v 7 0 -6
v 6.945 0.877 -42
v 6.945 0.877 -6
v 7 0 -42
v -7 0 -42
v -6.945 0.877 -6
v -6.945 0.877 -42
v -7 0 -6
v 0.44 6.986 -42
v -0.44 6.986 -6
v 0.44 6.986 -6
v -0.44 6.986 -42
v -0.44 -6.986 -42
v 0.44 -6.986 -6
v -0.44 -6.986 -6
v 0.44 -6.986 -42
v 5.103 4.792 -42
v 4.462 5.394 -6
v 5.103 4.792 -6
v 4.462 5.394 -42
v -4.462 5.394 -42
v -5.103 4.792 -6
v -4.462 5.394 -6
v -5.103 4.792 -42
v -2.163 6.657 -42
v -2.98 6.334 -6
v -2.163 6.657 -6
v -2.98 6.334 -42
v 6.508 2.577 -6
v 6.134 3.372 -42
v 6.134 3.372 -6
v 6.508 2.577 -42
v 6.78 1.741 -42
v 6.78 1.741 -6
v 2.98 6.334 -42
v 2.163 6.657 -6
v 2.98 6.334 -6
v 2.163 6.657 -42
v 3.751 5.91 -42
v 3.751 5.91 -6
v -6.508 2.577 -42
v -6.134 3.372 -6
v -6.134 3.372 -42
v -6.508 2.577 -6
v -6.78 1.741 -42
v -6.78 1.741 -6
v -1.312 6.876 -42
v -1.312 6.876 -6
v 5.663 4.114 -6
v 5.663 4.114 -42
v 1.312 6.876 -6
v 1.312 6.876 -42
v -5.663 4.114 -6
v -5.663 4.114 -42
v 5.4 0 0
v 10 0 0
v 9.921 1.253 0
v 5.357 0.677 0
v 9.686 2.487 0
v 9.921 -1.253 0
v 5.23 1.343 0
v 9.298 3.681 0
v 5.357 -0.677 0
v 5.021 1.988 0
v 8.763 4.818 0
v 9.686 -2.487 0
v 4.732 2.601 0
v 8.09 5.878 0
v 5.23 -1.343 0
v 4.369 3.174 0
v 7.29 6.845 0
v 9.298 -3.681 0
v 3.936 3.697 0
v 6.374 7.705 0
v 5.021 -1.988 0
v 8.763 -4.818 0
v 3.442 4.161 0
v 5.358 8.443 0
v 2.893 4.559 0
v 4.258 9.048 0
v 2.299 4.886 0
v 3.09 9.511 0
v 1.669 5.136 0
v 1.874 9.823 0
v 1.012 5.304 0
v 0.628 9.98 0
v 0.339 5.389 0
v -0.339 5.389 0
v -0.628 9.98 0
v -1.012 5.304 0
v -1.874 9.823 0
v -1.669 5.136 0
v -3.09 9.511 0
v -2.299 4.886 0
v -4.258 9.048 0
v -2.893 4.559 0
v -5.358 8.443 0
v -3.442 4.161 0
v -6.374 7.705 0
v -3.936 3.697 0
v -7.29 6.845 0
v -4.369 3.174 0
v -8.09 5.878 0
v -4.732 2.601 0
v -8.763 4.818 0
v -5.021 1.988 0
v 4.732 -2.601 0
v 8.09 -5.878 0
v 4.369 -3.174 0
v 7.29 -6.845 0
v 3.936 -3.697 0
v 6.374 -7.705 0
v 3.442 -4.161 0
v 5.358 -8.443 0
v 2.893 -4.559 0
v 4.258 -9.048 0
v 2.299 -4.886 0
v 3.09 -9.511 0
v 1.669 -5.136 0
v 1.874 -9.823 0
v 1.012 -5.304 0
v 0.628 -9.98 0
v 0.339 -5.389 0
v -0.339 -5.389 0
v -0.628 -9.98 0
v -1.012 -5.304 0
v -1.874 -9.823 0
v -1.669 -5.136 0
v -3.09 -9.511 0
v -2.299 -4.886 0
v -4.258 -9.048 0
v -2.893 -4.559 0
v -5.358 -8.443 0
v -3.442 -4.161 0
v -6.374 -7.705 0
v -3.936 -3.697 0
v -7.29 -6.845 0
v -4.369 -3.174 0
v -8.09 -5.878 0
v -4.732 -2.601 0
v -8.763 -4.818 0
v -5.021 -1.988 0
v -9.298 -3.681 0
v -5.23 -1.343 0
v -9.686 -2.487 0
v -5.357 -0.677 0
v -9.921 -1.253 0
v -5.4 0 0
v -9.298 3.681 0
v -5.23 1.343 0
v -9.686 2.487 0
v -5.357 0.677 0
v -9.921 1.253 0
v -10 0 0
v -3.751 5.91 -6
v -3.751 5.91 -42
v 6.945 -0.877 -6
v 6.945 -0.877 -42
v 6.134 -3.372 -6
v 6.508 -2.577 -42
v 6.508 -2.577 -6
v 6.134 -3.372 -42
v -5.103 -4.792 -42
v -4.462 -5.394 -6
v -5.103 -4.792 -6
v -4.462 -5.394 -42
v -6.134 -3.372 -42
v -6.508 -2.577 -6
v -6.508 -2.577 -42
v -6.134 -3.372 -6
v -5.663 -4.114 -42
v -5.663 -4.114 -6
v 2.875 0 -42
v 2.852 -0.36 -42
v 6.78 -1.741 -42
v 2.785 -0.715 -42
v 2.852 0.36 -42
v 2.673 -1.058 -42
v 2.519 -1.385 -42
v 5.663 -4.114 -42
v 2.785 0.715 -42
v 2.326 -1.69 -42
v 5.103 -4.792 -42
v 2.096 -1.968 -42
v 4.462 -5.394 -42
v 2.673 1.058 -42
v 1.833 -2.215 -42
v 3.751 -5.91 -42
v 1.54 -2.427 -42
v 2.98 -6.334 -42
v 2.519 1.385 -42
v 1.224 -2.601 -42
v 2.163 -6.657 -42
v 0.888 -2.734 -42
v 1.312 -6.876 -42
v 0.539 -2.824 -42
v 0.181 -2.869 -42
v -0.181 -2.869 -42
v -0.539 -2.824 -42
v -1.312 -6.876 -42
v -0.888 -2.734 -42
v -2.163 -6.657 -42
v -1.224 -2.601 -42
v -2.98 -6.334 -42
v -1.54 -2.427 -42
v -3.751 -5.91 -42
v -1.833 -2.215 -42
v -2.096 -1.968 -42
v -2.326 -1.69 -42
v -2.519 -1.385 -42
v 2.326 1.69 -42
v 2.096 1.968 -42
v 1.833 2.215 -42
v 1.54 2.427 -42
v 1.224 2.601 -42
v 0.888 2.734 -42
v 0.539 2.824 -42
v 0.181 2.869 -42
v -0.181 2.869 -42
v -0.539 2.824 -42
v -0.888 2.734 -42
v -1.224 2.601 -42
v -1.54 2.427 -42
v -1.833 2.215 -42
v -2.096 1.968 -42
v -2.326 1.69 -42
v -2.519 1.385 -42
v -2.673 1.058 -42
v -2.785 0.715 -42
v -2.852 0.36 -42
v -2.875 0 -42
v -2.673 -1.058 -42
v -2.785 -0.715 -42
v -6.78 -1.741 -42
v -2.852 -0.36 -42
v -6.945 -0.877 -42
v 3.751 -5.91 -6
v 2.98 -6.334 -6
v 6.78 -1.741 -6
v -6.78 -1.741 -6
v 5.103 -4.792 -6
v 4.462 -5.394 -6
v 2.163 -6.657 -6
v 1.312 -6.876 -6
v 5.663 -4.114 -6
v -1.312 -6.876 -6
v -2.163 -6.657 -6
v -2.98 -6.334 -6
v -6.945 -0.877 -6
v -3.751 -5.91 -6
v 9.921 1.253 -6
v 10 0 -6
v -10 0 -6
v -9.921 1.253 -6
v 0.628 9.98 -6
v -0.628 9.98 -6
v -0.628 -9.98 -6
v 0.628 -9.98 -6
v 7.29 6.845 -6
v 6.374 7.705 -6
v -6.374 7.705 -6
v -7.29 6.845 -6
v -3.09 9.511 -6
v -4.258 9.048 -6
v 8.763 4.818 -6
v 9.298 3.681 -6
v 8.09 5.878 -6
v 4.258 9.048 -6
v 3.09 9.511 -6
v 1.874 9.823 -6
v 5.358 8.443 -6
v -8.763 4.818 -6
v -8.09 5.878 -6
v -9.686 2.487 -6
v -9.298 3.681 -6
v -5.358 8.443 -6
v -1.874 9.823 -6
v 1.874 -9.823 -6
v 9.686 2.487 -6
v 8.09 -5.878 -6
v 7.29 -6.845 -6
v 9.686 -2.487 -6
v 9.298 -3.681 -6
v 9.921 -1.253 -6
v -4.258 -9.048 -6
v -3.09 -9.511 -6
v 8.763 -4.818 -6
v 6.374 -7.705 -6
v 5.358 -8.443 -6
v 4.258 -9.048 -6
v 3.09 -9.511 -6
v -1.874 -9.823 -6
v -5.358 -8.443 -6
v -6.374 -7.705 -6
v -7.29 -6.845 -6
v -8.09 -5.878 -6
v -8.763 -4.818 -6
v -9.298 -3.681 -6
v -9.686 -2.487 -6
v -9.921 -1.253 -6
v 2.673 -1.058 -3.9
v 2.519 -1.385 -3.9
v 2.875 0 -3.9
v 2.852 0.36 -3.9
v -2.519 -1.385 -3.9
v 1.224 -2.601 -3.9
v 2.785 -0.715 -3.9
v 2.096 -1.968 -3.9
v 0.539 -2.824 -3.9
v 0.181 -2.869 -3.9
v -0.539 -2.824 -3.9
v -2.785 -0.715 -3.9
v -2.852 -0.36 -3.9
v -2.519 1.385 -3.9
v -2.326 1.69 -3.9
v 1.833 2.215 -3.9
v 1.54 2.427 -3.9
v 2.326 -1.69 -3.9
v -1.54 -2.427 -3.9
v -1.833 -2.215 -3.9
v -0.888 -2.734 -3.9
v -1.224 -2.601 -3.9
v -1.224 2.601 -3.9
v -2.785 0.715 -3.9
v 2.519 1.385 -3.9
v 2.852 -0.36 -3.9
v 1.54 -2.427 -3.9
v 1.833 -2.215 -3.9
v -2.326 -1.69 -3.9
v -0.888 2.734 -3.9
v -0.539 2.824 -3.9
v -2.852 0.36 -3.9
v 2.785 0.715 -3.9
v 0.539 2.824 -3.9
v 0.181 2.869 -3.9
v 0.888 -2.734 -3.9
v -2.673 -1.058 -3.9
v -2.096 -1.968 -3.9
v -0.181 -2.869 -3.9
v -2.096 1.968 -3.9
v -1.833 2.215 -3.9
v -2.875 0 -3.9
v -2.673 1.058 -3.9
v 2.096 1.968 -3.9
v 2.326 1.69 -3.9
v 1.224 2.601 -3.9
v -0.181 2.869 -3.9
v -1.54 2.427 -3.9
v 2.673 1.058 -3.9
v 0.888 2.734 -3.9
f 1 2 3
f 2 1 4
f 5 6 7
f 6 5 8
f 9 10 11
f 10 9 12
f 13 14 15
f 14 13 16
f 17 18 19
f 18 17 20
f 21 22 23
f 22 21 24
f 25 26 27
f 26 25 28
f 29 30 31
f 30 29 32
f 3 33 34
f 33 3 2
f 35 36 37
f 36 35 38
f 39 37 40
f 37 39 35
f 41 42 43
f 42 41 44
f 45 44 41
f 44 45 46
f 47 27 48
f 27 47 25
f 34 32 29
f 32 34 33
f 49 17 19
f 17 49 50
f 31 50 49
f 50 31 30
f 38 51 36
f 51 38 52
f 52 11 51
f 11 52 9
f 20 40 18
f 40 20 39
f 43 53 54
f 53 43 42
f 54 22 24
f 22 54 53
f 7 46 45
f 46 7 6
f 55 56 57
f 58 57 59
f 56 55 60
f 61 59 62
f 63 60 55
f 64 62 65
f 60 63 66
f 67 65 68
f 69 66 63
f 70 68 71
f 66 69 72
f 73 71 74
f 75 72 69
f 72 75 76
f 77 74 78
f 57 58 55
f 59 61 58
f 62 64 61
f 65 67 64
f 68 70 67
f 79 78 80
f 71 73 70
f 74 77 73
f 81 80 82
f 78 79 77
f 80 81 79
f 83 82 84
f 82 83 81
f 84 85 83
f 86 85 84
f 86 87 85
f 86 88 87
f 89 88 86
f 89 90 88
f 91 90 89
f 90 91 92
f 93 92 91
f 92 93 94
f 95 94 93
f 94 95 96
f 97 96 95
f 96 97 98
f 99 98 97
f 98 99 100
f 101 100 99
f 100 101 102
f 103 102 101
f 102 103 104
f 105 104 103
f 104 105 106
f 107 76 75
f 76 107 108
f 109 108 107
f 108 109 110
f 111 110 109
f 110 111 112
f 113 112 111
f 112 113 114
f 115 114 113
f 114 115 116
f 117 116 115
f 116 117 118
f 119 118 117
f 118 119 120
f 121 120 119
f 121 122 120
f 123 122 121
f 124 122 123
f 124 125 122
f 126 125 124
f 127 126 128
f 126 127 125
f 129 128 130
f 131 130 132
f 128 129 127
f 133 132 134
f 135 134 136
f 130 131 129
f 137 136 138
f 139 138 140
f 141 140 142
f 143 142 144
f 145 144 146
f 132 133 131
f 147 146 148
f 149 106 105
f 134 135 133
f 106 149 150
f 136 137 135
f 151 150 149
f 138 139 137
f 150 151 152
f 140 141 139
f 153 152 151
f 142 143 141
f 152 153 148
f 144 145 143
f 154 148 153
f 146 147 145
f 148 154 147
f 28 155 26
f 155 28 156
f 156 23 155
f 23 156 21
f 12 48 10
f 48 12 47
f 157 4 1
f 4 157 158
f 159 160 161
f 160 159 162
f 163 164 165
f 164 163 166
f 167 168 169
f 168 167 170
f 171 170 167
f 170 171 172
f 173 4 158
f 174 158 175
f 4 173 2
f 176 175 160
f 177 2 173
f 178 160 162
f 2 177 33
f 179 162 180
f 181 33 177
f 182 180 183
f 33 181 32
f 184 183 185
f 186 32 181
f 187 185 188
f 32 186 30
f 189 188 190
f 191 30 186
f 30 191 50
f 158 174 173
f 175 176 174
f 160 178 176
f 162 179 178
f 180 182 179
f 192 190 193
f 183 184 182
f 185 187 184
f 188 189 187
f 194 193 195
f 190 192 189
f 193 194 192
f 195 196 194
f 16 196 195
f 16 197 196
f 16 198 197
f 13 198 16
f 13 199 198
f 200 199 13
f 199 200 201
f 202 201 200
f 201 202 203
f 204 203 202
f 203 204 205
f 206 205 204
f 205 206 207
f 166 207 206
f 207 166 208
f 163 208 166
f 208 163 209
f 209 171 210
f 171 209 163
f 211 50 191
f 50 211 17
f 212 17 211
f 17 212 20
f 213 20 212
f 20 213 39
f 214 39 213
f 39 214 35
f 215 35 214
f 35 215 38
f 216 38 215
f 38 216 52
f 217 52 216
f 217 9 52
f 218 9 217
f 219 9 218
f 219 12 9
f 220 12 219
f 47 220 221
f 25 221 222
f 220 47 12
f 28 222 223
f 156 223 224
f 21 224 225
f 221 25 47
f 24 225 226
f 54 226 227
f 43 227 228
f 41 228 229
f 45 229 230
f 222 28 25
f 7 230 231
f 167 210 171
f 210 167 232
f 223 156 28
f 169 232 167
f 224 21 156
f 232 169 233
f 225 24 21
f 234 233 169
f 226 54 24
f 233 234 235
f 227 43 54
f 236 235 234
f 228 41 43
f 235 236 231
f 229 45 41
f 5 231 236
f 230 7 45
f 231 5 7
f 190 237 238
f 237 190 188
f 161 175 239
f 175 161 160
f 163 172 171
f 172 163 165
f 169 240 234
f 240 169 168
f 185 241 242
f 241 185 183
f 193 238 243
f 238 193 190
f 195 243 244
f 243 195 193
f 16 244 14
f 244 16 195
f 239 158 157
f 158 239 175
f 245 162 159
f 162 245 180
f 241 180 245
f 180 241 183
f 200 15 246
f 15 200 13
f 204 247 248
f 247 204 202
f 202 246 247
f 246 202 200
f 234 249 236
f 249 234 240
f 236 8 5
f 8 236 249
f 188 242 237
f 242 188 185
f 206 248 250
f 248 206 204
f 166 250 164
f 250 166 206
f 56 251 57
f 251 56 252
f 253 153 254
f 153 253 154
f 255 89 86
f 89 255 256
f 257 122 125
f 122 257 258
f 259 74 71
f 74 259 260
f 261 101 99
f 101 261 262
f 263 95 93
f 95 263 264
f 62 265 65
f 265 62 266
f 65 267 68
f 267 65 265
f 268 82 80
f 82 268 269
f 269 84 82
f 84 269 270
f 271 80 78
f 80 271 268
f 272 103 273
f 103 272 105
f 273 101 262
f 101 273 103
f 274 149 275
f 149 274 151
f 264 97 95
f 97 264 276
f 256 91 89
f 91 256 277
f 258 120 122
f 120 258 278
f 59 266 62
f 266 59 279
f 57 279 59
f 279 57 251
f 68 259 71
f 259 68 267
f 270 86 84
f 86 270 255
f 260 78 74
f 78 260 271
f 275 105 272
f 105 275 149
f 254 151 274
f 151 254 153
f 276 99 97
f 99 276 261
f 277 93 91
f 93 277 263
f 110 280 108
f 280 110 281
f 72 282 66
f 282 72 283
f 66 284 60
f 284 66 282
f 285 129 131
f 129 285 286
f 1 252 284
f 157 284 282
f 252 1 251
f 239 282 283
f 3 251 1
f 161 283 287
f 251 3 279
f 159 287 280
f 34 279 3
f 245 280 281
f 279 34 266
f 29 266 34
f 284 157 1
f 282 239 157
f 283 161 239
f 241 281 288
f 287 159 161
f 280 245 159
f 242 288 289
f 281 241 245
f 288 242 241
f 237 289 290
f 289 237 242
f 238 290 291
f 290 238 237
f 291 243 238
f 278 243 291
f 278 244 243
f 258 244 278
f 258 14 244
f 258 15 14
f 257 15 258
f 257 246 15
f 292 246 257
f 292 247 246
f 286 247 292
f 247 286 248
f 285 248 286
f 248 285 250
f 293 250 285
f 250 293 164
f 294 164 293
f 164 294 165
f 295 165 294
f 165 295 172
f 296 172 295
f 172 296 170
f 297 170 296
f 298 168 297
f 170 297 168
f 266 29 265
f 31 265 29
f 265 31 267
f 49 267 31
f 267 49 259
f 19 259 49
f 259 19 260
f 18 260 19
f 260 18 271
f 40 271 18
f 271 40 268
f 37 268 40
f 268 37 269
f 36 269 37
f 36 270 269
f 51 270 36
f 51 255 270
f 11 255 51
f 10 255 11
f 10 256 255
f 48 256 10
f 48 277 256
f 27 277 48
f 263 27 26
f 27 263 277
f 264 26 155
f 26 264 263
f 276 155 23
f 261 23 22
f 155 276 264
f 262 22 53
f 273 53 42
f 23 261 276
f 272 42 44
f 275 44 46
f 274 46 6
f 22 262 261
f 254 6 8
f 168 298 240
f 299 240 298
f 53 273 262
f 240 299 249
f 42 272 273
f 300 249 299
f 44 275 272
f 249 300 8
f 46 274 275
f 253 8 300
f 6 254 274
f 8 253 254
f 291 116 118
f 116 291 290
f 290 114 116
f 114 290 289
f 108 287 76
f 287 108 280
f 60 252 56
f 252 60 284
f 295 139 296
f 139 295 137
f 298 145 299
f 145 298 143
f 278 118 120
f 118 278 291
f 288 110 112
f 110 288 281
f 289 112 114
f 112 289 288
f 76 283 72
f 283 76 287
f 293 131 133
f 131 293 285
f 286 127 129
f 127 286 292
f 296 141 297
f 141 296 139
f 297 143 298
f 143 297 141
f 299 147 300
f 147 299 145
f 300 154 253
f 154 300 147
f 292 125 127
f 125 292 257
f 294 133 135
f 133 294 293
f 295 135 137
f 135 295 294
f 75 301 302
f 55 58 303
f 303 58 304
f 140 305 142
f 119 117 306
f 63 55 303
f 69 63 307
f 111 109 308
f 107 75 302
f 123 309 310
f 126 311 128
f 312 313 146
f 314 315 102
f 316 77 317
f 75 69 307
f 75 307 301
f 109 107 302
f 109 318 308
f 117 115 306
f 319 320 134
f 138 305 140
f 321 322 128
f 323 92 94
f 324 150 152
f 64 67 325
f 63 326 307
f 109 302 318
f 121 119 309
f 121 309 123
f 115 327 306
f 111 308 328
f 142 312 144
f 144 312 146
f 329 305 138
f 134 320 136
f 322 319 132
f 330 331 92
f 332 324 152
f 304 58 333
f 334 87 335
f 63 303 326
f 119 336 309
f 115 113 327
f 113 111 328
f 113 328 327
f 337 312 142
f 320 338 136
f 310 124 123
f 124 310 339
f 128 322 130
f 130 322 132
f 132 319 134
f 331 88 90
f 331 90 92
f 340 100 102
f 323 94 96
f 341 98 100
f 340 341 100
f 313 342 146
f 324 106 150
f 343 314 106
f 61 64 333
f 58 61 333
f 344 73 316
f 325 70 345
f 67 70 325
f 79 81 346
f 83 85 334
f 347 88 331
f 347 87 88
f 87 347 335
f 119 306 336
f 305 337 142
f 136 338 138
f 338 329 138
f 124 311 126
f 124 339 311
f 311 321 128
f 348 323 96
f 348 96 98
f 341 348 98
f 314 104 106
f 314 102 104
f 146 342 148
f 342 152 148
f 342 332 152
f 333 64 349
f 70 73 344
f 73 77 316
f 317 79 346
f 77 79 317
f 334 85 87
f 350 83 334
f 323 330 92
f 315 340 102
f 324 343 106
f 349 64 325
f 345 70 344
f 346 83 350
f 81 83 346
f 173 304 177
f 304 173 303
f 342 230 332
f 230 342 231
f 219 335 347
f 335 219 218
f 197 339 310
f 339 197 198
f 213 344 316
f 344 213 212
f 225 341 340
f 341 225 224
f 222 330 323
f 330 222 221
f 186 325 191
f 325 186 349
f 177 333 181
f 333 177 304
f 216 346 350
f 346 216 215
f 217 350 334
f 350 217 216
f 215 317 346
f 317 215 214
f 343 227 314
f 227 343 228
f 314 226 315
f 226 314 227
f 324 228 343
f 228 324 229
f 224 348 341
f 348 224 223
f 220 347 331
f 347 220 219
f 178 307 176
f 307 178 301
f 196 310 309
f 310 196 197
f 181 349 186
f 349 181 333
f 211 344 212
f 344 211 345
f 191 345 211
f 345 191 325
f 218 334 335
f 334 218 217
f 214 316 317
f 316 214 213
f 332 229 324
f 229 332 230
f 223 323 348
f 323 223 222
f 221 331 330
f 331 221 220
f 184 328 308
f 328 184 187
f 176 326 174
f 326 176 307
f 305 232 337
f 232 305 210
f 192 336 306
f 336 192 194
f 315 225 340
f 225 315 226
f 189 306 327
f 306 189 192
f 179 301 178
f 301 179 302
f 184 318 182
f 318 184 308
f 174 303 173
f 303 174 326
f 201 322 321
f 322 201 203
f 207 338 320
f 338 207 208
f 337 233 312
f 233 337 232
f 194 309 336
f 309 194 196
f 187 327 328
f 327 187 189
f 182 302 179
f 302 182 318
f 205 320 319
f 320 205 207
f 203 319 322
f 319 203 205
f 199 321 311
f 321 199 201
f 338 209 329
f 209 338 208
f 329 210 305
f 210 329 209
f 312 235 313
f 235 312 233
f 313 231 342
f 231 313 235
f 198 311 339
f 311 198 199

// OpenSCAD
$fn = 50;


difference() {
	union() {
		translate(v = [0, 0, -42.0000000000]) {
			cylinder(h = 42, r = 7.0000000000);
		}
		translate(v = [0, 0, -6.0000000000]) {
			cylinder(h = 6, r = 10.0000000000);
		}
	}
	union() {
		translate(v = [0, 0, 0]) {
			rotate(a = [0, 0, 0]) {
				difference() {
					union() {
						#translate(v = [0, 0, -42.0000000000]) {
							cylinder(h = 42, r = 2.6000000000);
						}
						#translate(v = [0, 0, -3.9000000000]) {
							cylinder(h = 3.9000000000, r1 = 2.8750000000, r2 = 5.4000000000);
						}
						#translate(v = [0, 0, -42.0000000000]) {
							cylinder(h = 42, r = 2.8750000000);
						}
						#translate(v = [0, 0, -42.0000000000]) {
							cylinder(h = 42, r = 2.6000000000);
						}
					}
					union();
				}
			}
		}
	}
}
